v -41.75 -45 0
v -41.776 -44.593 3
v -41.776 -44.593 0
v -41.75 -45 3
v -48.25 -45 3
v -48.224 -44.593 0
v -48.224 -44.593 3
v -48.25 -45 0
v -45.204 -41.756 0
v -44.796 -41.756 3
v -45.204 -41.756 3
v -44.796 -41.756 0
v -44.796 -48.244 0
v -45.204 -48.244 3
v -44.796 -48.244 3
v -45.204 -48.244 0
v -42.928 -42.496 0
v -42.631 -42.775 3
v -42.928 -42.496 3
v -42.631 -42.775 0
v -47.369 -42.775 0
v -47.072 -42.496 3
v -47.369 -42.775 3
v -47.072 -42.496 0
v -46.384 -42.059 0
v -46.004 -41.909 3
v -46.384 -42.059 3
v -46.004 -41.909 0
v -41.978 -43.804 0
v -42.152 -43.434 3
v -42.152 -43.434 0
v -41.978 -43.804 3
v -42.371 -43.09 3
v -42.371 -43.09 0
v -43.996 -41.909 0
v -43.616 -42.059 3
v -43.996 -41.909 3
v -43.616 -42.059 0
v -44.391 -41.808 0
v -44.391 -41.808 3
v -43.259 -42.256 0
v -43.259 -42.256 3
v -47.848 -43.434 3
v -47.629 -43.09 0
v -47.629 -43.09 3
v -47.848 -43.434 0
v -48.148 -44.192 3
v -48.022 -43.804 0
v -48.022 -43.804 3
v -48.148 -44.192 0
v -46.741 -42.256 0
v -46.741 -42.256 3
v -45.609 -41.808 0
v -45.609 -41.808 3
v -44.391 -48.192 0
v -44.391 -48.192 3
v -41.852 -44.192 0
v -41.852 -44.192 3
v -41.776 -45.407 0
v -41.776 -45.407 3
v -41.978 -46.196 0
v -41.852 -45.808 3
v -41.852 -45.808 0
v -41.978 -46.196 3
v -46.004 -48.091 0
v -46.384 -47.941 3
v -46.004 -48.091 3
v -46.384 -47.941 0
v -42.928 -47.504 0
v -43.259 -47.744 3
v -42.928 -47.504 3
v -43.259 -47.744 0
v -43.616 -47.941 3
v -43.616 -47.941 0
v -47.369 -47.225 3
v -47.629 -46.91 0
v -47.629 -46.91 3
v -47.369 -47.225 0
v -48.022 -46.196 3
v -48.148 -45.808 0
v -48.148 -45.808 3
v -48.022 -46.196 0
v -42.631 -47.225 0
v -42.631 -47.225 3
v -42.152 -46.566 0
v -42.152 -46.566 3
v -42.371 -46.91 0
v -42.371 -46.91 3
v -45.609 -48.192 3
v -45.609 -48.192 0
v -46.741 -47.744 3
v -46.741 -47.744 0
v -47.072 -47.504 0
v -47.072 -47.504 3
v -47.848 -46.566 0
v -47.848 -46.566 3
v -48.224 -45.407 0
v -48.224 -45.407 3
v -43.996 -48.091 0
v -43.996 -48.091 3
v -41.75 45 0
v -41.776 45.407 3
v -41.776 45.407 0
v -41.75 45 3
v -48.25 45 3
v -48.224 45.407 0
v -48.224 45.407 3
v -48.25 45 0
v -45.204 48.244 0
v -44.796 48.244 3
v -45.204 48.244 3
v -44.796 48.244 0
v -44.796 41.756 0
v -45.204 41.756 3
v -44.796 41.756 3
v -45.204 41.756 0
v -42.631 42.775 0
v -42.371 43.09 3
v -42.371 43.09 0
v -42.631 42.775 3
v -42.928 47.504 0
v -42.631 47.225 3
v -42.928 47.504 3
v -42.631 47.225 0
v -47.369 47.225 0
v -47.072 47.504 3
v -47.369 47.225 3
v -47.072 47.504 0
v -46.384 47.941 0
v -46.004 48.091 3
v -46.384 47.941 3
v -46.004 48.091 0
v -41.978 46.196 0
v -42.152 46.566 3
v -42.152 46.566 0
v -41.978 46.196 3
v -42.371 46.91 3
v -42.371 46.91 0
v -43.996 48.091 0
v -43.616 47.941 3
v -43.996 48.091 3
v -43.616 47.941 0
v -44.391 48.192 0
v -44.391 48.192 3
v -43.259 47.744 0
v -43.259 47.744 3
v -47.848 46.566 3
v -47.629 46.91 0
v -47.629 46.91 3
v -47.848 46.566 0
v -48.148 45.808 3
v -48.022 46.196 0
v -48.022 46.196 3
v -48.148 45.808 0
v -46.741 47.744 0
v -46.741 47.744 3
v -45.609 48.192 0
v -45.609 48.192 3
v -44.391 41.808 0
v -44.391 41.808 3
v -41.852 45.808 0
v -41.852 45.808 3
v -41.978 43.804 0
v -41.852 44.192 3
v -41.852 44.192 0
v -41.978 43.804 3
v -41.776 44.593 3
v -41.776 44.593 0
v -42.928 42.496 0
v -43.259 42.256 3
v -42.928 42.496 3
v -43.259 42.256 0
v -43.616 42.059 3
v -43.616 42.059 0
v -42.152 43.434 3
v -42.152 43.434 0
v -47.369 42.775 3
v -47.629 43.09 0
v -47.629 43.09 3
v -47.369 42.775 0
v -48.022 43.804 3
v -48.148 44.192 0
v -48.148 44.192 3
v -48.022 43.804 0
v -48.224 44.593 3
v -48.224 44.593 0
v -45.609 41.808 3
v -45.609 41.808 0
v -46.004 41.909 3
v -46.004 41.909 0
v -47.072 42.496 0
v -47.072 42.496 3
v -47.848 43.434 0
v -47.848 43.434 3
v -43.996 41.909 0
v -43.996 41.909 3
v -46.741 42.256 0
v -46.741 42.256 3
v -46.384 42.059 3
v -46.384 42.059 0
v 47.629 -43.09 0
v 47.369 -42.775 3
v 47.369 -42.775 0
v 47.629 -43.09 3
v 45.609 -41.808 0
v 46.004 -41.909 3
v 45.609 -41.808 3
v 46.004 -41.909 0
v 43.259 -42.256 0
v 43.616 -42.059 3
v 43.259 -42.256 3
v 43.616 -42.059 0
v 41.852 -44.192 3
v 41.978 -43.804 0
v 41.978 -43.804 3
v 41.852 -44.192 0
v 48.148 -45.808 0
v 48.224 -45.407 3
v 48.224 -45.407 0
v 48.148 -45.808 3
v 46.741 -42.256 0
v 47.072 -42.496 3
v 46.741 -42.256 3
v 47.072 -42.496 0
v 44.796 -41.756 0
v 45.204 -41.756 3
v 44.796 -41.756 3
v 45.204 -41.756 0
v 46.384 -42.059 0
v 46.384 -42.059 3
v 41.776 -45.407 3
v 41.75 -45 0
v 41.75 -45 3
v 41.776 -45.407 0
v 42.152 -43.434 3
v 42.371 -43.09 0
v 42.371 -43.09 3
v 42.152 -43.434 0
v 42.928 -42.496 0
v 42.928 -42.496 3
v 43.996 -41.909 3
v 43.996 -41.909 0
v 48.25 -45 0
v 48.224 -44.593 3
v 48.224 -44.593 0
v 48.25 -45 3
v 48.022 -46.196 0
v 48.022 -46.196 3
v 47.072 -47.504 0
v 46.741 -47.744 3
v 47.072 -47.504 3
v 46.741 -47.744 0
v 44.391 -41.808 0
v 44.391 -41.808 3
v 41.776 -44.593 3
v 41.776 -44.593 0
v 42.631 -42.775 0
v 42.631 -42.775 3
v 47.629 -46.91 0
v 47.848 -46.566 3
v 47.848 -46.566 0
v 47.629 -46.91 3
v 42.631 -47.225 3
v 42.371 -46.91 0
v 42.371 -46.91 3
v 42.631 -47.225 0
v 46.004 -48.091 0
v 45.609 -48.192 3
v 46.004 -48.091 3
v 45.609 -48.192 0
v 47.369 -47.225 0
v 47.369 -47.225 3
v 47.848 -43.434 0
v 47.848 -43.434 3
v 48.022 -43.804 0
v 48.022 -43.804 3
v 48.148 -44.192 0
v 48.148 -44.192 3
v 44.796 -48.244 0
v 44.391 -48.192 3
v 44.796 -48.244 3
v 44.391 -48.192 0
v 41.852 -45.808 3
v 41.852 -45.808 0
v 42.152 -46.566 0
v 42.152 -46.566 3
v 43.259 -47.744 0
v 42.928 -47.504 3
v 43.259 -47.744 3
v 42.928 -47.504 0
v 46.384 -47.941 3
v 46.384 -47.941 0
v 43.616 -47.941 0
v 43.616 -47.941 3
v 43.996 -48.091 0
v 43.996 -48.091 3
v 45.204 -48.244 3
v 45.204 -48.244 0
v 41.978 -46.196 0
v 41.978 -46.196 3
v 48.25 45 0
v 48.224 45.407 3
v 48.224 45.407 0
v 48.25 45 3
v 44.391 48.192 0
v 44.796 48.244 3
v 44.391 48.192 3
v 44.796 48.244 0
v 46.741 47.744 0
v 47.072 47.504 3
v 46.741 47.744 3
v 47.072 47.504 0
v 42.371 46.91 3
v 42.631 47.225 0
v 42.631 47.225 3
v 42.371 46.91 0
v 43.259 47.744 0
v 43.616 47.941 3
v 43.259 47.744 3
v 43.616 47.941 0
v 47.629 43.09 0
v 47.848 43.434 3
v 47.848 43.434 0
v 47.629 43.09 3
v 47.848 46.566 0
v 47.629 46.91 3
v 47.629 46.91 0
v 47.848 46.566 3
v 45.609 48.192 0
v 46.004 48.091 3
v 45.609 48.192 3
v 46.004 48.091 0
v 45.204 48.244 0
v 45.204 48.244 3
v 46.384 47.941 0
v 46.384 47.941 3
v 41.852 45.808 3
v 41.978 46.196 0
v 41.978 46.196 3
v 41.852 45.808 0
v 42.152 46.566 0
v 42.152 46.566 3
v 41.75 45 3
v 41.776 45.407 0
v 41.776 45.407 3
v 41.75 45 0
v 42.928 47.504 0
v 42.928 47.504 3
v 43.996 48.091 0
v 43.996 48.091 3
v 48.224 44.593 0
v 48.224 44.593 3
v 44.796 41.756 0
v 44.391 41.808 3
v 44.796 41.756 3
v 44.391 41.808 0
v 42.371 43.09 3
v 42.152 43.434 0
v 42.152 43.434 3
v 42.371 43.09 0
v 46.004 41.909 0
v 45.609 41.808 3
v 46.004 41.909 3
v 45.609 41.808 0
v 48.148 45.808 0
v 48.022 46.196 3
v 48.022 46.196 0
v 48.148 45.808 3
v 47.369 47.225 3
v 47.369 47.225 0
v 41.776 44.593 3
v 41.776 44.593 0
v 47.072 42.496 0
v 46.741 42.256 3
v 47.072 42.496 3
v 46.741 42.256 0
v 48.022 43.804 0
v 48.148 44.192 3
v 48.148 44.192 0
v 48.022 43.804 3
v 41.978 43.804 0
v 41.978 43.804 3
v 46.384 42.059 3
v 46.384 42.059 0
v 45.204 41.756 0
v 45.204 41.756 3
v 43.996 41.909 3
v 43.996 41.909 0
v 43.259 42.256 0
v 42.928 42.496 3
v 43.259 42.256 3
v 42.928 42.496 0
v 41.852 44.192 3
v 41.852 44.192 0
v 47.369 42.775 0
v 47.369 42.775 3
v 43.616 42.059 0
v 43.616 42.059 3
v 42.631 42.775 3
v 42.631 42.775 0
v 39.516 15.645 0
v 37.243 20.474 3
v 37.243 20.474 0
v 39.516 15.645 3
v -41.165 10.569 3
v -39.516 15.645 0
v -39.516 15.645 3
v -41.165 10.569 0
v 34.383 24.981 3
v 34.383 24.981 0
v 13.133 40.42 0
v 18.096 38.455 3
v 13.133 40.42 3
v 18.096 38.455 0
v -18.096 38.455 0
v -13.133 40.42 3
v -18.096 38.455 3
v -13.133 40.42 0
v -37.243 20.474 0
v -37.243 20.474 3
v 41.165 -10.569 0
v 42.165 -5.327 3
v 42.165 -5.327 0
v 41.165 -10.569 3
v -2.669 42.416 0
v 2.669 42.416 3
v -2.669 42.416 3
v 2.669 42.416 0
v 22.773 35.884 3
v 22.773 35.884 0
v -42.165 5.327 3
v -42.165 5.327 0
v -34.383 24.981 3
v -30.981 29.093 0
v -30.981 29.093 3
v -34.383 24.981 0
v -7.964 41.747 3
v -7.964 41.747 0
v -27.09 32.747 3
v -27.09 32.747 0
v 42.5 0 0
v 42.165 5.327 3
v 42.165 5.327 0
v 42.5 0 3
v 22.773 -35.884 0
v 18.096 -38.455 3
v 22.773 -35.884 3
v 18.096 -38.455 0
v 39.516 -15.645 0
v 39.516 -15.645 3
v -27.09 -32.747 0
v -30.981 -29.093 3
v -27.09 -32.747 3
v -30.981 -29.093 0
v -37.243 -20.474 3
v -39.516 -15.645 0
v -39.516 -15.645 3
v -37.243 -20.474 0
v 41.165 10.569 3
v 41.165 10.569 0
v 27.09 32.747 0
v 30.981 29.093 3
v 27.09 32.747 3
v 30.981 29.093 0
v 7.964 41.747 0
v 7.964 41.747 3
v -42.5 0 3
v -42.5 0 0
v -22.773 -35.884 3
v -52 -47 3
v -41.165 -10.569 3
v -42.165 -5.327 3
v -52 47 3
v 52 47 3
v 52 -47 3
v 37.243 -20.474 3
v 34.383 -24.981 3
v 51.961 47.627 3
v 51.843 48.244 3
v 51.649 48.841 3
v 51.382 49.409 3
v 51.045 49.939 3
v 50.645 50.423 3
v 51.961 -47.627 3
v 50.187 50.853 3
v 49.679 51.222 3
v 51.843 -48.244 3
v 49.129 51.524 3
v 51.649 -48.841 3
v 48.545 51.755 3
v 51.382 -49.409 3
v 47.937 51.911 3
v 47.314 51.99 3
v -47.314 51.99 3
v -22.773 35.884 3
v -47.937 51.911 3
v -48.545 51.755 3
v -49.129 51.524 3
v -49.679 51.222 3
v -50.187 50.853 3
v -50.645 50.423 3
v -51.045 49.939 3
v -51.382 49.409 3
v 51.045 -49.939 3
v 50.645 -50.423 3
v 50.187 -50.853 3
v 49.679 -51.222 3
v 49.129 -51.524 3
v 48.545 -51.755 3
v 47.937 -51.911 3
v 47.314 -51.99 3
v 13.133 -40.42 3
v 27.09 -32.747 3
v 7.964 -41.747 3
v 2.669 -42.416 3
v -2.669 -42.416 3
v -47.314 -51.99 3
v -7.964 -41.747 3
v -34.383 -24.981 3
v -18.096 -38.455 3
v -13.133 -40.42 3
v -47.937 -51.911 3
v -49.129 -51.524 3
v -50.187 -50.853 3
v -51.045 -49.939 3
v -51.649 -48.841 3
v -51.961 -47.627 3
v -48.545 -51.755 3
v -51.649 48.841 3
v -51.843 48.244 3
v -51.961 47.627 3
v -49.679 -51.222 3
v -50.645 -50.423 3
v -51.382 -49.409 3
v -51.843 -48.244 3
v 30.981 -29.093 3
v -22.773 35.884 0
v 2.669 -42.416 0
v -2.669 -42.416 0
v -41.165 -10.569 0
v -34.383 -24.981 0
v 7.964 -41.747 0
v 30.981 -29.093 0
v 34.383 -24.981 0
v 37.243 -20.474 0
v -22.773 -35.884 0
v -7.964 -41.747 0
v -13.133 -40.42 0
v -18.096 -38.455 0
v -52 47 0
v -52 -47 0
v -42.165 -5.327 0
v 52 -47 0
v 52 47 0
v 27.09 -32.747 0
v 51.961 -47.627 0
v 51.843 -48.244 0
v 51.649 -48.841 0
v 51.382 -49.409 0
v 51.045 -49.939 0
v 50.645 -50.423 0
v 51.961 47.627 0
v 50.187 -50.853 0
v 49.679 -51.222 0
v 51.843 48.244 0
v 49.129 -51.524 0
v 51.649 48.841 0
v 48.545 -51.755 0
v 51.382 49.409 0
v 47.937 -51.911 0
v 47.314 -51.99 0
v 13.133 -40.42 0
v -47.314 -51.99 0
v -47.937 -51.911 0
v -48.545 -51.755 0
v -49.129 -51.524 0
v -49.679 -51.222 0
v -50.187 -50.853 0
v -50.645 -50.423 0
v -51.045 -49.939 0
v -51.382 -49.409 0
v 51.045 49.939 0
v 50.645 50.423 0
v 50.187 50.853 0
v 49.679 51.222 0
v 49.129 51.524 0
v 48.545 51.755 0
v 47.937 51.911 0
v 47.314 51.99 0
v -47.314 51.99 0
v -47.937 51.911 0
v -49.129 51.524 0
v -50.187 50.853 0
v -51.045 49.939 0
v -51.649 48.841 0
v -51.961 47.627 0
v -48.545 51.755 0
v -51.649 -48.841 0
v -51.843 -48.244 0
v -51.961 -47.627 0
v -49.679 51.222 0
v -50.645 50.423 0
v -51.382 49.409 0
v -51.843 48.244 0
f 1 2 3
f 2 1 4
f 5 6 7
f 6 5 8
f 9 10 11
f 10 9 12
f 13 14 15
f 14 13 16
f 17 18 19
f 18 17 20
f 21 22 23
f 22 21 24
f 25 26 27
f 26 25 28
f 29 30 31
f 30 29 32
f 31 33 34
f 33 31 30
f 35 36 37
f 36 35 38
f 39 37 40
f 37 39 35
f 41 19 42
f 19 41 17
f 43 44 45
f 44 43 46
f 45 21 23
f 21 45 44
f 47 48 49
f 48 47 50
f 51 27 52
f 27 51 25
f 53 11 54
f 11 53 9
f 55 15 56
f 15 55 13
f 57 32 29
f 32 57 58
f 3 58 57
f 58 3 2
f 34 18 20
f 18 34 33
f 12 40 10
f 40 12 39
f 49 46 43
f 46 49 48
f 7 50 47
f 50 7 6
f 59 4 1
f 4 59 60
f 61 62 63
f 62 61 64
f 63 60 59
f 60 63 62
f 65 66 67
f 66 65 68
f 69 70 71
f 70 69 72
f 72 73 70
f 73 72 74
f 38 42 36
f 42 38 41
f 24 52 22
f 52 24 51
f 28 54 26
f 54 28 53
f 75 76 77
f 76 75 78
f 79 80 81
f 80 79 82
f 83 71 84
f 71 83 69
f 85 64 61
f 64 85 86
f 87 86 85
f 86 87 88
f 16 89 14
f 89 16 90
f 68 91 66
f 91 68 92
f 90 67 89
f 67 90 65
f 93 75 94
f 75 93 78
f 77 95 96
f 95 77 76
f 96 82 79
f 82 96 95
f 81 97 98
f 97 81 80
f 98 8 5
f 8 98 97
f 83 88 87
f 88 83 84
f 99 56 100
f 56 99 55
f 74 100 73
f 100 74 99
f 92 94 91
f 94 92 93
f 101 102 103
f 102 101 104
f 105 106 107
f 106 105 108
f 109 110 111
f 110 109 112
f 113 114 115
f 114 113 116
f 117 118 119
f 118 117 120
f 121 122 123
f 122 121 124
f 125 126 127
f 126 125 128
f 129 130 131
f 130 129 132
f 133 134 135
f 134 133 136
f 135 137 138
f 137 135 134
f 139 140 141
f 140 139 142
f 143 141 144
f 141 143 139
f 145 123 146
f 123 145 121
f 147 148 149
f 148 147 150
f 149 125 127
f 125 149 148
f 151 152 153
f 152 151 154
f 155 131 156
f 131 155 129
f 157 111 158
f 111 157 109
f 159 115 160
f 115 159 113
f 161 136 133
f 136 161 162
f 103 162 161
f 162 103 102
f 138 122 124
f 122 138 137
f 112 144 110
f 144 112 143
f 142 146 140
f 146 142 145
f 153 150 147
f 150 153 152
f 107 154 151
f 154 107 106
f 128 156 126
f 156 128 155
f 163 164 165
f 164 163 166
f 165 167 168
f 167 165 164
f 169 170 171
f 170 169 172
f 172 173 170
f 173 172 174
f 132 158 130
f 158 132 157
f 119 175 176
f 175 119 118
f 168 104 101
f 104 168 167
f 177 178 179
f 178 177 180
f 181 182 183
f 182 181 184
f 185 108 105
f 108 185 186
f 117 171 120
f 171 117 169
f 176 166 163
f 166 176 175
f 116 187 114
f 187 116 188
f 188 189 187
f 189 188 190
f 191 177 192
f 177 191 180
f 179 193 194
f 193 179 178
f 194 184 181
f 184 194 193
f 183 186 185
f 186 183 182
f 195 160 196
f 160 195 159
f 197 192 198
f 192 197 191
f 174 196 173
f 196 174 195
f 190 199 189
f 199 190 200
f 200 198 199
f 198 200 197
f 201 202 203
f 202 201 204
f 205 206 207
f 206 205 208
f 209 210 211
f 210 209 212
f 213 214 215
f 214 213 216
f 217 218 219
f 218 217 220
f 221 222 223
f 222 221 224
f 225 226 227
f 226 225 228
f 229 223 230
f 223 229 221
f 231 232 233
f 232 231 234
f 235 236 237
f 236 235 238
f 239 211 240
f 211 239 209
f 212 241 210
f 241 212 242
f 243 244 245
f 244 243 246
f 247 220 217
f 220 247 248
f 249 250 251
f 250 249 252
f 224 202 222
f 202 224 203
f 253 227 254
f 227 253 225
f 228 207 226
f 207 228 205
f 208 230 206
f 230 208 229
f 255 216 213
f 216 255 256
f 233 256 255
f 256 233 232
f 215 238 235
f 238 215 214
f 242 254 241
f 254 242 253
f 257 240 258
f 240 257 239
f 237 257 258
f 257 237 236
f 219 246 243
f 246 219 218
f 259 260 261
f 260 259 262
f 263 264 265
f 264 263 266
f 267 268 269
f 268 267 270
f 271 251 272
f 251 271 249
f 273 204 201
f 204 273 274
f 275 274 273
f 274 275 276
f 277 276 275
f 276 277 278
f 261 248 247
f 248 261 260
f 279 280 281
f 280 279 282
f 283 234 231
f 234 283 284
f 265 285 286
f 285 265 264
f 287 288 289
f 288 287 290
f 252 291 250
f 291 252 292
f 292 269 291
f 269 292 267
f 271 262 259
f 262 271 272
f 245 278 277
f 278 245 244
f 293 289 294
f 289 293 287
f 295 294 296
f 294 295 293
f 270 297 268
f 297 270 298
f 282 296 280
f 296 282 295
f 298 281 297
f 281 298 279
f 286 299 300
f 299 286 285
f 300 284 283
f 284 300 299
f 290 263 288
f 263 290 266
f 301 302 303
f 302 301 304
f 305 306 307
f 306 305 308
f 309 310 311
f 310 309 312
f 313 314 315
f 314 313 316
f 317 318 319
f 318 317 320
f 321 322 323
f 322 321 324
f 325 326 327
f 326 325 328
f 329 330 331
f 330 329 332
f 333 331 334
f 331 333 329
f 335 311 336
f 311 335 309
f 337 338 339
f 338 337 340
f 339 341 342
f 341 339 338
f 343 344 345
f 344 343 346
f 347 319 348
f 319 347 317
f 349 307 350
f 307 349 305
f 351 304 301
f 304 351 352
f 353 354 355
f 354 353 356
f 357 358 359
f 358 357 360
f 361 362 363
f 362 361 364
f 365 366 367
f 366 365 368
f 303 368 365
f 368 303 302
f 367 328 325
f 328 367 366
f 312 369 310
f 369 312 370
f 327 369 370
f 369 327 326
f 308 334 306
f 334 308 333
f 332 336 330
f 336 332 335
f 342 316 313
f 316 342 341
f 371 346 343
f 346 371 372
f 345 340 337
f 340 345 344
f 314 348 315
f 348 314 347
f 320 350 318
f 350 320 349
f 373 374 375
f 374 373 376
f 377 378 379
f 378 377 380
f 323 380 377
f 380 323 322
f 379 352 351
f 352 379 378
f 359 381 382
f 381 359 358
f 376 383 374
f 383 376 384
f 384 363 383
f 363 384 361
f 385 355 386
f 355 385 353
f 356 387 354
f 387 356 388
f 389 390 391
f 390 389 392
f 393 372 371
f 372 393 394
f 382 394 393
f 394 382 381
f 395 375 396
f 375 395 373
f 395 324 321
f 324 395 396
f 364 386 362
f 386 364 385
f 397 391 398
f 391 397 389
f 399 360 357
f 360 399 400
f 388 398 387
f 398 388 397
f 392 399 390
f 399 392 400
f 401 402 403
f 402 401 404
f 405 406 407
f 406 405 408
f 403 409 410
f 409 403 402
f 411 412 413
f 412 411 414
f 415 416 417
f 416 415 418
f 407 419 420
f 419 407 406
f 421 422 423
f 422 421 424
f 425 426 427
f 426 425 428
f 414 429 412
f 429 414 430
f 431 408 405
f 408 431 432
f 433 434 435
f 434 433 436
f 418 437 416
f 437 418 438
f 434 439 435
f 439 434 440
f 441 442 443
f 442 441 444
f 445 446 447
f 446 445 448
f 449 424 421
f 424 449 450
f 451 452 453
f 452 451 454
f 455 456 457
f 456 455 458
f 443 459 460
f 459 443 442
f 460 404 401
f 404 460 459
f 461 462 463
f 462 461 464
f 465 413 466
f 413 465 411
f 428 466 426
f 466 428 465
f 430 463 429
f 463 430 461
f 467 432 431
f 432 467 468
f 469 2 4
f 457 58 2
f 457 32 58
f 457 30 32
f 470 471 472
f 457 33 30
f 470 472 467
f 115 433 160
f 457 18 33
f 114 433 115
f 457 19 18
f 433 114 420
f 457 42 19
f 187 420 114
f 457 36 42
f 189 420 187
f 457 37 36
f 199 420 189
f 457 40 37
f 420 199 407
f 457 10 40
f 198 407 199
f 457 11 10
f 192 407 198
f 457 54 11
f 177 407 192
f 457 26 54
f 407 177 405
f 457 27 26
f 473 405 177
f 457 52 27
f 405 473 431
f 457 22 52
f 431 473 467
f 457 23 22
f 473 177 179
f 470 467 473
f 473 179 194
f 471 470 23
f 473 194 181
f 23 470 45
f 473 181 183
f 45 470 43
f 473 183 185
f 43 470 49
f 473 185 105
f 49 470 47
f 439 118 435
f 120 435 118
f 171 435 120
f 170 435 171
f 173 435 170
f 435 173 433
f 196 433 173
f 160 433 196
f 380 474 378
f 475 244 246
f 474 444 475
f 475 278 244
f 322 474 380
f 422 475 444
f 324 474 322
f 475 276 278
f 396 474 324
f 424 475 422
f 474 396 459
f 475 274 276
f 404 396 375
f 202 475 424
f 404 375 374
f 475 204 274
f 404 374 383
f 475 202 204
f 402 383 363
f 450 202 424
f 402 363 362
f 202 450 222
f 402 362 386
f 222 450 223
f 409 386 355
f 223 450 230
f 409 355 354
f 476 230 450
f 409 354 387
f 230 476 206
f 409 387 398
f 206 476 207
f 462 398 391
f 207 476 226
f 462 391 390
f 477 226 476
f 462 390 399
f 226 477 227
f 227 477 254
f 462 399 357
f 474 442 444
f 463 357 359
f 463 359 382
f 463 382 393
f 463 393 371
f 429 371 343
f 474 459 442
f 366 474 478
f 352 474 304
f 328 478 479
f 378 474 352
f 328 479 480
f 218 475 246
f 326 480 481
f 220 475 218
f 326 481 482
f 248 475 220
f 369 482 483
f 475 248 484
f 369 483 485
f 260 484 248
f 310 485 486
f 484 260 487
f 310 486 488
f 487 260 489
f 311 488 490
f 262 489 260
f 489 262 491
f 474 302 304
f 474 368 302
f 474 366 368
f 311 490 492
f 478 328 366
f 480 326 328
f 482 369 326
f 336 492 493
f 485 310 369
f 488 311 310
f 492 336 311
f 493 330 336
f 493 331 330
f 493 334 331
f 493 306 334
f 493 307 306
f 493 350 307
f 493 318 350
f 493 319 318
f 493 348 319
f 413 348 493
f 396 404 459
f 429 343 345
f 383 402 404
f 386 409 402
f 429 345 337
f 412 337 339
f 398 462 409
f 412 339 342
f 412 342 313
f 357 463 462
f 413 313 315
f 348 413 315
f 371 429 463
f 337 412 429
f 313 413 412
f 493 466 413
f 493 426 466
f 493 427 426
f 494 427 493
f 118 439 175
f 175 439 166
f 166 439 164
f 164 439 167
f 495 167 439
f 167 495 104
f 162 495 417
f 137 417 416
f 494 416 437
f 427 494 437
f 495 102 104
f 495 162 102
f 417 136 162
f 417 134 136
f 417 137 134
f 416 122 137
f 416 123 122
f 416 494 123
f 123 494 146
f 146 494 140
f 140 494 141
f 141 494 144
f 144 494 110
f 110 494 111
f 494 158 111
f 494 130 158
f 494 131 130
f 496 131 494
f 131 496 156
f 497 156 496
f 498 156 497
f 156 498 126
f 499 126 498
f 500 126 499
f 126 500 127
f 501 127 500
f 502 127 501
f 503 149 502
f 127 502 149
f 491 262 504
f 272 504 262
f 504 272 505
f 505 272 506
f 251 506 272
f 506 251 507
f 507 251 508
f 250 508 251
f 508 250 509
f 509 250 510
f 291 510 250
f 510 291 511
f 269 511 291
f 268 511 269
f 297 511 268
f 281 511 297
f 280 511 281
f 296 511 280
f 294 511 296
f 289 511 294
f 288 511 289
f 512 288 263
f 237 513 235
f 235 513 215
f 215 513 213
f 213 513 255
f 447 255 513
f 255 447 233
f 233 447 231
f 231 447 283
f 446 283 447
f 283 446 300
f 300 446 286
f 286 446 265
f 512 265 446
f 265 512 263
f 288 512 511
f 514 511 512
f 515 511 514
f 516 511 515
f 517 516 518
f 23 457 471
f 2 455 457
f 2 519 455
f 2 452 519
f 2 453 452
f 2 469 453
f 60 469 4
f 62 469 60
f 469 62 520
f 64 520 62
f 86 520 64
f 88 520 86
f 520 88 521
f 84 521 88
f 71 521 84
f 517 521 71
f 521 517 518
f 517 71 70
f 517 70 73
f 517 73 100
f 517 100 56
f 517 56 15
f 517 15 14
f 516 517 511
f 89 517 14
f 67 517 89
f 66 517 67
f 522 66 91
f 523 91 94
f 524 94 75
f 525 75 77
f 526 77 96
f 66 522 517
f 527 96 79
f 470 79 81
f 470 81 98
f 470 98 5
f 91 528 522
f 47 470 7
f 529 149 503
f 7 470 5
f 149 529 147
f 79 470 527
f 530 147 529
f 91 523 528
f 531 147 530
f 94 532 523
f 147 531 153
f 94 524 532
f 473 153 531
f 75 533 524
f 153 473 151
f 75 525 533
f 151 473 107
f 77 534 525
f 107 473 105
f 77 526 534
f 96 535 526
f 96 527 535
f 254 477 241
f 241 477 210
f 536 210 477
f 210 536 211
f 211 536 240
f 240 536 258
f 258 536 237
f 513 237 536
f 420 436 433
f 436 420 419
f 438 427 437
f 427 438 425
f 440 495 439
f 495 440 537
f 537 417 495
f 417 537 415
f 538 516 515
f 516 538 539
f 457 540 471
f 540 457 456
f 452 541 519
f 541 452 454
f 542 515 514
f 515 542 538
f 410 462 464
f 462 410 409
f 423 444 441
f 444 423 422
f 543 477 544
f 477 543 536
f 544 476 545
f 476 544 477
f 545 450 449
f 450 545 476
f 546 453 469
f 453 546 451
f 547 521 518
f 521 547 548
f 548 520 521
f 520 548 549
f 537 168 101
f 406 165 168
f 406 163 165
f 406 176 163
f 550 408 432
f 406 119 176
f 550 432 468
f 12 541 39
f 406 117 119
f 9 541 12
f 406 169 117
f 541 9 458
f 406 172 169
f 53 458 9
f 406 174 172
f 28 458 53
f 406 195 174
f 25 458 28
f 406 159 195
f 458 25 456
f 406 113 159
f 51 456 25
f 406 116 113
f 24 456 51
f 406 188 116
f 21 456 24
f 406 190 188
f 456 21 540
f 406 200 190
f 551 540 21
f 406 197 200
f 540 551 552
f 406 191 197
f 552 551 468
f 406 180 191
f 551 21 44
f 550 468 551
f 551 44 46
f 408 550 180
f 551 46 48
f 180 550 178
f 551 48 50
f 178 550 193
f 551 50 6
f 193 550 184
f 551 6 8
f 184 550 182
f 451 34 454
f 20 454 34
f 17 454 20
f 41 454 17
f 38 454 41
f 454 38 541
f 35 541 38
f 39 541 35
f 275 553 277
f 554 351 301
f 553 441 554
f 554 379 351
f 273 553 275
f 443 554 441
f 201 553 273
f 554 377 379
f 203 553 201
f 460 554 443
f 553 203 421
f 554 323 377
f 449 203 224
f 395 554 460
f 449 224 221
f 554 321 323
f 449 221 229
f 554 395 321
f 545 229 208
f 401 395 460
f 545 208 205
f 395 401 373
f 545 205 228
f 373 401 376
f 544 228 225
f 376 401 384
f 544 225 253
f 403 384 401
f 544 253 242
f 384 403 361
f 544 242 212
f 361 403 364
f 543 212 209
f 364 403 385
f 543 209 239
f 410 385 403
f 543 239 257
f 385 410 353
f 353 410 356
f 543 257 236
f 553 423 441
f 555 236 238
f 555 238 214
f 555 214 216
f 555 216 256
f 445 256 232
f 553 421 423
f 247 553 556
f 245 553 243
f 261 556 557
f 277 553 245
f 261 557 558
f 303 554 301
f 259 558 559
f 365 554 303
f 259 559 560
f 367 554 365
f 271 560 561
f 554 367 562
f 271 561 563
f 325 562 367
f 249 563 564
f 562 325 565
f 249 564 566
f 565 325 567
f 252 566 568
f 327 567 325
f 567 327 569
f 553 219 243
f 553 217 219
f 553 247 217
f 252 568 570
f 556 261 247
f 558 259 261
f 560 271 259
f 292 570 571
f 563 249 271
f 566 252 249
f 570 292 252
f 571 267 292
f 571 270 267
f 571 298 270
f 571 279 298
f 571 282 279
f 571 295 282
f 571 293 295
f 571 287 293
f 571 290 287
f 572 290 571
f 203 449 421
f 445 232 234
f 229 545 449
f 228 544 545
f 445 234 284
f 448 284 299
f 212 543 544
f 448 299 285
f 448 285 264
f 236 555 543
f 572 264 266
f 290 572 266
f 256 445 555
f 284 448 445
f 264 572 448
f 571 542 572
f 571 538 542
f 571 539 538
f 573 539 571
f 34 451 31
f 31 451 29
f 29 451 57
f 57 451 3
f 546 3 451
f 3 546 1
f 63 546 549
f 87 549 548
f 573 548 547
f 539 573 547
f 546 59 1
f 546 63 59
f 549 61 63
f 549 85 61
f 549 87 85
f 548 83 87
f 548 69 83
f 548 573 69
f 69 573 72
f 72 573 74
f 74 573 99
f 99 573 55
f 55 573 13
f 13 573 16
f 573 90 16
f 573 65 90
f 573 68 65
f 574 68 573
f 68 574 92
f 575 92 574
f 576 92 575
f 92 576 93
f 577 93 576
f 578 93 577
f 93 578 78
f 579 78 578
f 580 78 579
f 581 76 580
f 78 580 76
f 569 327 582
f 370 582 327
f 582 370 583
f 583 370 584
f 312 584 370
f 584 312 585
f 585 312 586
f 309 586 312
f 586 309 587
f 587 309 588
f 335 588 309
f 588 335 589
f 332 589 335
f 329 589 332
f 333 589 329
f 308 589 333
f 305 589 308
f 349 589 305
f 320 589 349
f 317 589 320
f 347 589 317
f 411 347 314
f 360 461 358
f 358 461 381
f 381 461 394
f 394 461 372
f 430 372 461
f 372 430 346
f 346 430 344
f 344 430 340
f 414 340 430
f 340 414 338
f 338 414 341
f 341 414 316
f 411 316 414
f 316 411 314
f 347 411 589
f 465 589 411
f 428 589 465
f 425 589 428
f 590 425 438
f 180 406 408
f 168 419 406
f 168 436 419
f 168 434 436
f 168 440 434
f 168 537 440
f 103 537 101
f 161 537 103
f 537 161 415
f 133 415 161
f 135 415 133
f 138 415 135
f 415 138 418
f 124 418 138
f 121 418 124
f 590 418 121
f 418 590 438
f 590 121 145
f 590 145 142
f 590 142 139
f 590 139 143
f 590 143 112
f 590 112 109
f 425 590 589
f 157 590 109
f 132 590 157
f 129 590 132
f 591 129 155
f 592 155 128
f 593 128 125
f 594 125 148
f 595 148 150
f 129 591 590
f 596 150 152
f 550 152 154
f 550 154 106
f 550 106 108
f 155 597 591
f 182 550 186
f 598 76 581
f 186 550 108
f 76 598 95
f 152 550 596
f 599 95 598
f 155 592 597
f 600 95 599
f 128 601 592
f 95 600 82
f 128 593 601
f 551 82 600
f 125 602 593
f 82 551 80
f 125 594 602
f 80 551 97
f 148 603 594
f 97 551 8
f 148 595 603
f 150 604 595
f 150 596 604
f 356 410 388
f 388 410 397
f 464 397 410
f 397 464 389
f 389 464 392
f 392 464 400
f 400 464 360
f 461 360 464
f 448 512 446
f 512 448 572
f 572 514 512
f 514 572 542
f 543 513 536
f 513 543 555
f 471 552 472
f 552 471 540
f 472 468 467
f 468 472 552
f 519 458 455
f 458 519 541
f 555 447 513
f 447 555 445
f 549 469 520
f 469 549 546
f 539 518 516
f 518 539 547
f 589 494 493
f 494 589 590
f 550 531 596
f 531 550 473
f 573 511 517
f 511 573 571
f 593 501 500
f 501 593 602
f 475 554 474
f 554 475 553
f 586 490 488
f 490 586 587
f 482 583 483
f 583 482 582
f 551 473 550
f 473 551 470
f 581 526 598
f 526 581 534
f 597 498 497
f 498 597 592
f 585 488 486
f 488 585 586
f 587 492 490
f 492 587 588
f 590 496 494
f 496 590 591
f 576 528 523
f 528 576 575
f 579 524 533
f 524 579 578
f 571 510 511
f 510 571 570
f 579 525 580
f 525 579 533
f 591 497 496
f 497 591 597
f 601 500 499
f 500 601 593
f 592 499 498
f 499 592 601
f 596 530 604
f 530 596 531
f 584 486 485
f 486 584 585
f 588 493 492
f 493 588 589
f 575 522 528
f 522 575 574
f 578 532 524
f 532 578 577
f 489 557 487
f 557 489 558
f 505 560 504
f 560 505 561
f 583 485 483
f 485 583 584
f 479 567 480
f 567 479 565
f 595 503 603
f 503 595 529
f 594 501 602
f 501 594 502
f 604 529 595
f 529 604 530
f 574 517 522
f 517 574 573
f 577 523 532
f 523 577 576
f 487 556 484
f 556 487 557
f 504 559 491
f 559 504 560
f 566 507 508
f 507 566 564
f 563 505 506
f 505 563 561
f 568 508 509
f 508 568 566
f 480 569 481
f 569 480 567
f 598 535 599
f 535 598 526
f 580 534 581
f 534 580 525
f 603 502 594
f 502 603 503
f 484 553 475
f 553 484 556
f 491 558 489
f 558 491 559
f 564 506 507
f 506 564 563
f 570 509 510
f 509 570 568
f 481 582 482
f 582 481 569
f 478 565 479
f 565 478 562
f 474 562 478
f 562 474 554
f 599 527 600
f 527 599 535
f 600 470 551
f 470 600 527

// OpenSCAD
$fn = 50;


difference() {
	union() {
		hull() {
			translate(v = [-47.0000000000, 47.0000000000, 0]) {
				cylinder(h = 3, r = 5);
			}
			translate(v = [47.0000000000, 47.0000000000, 0]) {
				cylinder(h = 3, r = 5);
			}
			translate(v = [-47.0000000000, -47.0000000000, 0]) {
				cylinder(h = 3, r = 5);
			}
			translate(v = [47.0000000000, -47.0000000000, 0]) {
				cylinder(h = 3, r = 5);
			}
		}
	}
	union() {
		#translate(v = [-45.0000000000, -45.0000000000, -100.0000000000]) {
			cylinder(h = 200, r = 3.2500000000);
		}
		#translate(v = [-45.0000000000, 45.0000000000, -100.0000000000]) {
			cylinder(h = 200, r = 3.2500000000);
		}
		#translate(v = [45.0000000000, -45.0000000000, -100.0000000000]) {
			cylinder(h = 200, r = 3.2500000000);
		}
		#translate(v = [45.0000000000, 45.0000000000, -100.0000000000]) {
			cylinder(h = 200, r = 3.2500000000);
		}
		#cylinder(h = 3, r = 42.5000000000);
	}
}
